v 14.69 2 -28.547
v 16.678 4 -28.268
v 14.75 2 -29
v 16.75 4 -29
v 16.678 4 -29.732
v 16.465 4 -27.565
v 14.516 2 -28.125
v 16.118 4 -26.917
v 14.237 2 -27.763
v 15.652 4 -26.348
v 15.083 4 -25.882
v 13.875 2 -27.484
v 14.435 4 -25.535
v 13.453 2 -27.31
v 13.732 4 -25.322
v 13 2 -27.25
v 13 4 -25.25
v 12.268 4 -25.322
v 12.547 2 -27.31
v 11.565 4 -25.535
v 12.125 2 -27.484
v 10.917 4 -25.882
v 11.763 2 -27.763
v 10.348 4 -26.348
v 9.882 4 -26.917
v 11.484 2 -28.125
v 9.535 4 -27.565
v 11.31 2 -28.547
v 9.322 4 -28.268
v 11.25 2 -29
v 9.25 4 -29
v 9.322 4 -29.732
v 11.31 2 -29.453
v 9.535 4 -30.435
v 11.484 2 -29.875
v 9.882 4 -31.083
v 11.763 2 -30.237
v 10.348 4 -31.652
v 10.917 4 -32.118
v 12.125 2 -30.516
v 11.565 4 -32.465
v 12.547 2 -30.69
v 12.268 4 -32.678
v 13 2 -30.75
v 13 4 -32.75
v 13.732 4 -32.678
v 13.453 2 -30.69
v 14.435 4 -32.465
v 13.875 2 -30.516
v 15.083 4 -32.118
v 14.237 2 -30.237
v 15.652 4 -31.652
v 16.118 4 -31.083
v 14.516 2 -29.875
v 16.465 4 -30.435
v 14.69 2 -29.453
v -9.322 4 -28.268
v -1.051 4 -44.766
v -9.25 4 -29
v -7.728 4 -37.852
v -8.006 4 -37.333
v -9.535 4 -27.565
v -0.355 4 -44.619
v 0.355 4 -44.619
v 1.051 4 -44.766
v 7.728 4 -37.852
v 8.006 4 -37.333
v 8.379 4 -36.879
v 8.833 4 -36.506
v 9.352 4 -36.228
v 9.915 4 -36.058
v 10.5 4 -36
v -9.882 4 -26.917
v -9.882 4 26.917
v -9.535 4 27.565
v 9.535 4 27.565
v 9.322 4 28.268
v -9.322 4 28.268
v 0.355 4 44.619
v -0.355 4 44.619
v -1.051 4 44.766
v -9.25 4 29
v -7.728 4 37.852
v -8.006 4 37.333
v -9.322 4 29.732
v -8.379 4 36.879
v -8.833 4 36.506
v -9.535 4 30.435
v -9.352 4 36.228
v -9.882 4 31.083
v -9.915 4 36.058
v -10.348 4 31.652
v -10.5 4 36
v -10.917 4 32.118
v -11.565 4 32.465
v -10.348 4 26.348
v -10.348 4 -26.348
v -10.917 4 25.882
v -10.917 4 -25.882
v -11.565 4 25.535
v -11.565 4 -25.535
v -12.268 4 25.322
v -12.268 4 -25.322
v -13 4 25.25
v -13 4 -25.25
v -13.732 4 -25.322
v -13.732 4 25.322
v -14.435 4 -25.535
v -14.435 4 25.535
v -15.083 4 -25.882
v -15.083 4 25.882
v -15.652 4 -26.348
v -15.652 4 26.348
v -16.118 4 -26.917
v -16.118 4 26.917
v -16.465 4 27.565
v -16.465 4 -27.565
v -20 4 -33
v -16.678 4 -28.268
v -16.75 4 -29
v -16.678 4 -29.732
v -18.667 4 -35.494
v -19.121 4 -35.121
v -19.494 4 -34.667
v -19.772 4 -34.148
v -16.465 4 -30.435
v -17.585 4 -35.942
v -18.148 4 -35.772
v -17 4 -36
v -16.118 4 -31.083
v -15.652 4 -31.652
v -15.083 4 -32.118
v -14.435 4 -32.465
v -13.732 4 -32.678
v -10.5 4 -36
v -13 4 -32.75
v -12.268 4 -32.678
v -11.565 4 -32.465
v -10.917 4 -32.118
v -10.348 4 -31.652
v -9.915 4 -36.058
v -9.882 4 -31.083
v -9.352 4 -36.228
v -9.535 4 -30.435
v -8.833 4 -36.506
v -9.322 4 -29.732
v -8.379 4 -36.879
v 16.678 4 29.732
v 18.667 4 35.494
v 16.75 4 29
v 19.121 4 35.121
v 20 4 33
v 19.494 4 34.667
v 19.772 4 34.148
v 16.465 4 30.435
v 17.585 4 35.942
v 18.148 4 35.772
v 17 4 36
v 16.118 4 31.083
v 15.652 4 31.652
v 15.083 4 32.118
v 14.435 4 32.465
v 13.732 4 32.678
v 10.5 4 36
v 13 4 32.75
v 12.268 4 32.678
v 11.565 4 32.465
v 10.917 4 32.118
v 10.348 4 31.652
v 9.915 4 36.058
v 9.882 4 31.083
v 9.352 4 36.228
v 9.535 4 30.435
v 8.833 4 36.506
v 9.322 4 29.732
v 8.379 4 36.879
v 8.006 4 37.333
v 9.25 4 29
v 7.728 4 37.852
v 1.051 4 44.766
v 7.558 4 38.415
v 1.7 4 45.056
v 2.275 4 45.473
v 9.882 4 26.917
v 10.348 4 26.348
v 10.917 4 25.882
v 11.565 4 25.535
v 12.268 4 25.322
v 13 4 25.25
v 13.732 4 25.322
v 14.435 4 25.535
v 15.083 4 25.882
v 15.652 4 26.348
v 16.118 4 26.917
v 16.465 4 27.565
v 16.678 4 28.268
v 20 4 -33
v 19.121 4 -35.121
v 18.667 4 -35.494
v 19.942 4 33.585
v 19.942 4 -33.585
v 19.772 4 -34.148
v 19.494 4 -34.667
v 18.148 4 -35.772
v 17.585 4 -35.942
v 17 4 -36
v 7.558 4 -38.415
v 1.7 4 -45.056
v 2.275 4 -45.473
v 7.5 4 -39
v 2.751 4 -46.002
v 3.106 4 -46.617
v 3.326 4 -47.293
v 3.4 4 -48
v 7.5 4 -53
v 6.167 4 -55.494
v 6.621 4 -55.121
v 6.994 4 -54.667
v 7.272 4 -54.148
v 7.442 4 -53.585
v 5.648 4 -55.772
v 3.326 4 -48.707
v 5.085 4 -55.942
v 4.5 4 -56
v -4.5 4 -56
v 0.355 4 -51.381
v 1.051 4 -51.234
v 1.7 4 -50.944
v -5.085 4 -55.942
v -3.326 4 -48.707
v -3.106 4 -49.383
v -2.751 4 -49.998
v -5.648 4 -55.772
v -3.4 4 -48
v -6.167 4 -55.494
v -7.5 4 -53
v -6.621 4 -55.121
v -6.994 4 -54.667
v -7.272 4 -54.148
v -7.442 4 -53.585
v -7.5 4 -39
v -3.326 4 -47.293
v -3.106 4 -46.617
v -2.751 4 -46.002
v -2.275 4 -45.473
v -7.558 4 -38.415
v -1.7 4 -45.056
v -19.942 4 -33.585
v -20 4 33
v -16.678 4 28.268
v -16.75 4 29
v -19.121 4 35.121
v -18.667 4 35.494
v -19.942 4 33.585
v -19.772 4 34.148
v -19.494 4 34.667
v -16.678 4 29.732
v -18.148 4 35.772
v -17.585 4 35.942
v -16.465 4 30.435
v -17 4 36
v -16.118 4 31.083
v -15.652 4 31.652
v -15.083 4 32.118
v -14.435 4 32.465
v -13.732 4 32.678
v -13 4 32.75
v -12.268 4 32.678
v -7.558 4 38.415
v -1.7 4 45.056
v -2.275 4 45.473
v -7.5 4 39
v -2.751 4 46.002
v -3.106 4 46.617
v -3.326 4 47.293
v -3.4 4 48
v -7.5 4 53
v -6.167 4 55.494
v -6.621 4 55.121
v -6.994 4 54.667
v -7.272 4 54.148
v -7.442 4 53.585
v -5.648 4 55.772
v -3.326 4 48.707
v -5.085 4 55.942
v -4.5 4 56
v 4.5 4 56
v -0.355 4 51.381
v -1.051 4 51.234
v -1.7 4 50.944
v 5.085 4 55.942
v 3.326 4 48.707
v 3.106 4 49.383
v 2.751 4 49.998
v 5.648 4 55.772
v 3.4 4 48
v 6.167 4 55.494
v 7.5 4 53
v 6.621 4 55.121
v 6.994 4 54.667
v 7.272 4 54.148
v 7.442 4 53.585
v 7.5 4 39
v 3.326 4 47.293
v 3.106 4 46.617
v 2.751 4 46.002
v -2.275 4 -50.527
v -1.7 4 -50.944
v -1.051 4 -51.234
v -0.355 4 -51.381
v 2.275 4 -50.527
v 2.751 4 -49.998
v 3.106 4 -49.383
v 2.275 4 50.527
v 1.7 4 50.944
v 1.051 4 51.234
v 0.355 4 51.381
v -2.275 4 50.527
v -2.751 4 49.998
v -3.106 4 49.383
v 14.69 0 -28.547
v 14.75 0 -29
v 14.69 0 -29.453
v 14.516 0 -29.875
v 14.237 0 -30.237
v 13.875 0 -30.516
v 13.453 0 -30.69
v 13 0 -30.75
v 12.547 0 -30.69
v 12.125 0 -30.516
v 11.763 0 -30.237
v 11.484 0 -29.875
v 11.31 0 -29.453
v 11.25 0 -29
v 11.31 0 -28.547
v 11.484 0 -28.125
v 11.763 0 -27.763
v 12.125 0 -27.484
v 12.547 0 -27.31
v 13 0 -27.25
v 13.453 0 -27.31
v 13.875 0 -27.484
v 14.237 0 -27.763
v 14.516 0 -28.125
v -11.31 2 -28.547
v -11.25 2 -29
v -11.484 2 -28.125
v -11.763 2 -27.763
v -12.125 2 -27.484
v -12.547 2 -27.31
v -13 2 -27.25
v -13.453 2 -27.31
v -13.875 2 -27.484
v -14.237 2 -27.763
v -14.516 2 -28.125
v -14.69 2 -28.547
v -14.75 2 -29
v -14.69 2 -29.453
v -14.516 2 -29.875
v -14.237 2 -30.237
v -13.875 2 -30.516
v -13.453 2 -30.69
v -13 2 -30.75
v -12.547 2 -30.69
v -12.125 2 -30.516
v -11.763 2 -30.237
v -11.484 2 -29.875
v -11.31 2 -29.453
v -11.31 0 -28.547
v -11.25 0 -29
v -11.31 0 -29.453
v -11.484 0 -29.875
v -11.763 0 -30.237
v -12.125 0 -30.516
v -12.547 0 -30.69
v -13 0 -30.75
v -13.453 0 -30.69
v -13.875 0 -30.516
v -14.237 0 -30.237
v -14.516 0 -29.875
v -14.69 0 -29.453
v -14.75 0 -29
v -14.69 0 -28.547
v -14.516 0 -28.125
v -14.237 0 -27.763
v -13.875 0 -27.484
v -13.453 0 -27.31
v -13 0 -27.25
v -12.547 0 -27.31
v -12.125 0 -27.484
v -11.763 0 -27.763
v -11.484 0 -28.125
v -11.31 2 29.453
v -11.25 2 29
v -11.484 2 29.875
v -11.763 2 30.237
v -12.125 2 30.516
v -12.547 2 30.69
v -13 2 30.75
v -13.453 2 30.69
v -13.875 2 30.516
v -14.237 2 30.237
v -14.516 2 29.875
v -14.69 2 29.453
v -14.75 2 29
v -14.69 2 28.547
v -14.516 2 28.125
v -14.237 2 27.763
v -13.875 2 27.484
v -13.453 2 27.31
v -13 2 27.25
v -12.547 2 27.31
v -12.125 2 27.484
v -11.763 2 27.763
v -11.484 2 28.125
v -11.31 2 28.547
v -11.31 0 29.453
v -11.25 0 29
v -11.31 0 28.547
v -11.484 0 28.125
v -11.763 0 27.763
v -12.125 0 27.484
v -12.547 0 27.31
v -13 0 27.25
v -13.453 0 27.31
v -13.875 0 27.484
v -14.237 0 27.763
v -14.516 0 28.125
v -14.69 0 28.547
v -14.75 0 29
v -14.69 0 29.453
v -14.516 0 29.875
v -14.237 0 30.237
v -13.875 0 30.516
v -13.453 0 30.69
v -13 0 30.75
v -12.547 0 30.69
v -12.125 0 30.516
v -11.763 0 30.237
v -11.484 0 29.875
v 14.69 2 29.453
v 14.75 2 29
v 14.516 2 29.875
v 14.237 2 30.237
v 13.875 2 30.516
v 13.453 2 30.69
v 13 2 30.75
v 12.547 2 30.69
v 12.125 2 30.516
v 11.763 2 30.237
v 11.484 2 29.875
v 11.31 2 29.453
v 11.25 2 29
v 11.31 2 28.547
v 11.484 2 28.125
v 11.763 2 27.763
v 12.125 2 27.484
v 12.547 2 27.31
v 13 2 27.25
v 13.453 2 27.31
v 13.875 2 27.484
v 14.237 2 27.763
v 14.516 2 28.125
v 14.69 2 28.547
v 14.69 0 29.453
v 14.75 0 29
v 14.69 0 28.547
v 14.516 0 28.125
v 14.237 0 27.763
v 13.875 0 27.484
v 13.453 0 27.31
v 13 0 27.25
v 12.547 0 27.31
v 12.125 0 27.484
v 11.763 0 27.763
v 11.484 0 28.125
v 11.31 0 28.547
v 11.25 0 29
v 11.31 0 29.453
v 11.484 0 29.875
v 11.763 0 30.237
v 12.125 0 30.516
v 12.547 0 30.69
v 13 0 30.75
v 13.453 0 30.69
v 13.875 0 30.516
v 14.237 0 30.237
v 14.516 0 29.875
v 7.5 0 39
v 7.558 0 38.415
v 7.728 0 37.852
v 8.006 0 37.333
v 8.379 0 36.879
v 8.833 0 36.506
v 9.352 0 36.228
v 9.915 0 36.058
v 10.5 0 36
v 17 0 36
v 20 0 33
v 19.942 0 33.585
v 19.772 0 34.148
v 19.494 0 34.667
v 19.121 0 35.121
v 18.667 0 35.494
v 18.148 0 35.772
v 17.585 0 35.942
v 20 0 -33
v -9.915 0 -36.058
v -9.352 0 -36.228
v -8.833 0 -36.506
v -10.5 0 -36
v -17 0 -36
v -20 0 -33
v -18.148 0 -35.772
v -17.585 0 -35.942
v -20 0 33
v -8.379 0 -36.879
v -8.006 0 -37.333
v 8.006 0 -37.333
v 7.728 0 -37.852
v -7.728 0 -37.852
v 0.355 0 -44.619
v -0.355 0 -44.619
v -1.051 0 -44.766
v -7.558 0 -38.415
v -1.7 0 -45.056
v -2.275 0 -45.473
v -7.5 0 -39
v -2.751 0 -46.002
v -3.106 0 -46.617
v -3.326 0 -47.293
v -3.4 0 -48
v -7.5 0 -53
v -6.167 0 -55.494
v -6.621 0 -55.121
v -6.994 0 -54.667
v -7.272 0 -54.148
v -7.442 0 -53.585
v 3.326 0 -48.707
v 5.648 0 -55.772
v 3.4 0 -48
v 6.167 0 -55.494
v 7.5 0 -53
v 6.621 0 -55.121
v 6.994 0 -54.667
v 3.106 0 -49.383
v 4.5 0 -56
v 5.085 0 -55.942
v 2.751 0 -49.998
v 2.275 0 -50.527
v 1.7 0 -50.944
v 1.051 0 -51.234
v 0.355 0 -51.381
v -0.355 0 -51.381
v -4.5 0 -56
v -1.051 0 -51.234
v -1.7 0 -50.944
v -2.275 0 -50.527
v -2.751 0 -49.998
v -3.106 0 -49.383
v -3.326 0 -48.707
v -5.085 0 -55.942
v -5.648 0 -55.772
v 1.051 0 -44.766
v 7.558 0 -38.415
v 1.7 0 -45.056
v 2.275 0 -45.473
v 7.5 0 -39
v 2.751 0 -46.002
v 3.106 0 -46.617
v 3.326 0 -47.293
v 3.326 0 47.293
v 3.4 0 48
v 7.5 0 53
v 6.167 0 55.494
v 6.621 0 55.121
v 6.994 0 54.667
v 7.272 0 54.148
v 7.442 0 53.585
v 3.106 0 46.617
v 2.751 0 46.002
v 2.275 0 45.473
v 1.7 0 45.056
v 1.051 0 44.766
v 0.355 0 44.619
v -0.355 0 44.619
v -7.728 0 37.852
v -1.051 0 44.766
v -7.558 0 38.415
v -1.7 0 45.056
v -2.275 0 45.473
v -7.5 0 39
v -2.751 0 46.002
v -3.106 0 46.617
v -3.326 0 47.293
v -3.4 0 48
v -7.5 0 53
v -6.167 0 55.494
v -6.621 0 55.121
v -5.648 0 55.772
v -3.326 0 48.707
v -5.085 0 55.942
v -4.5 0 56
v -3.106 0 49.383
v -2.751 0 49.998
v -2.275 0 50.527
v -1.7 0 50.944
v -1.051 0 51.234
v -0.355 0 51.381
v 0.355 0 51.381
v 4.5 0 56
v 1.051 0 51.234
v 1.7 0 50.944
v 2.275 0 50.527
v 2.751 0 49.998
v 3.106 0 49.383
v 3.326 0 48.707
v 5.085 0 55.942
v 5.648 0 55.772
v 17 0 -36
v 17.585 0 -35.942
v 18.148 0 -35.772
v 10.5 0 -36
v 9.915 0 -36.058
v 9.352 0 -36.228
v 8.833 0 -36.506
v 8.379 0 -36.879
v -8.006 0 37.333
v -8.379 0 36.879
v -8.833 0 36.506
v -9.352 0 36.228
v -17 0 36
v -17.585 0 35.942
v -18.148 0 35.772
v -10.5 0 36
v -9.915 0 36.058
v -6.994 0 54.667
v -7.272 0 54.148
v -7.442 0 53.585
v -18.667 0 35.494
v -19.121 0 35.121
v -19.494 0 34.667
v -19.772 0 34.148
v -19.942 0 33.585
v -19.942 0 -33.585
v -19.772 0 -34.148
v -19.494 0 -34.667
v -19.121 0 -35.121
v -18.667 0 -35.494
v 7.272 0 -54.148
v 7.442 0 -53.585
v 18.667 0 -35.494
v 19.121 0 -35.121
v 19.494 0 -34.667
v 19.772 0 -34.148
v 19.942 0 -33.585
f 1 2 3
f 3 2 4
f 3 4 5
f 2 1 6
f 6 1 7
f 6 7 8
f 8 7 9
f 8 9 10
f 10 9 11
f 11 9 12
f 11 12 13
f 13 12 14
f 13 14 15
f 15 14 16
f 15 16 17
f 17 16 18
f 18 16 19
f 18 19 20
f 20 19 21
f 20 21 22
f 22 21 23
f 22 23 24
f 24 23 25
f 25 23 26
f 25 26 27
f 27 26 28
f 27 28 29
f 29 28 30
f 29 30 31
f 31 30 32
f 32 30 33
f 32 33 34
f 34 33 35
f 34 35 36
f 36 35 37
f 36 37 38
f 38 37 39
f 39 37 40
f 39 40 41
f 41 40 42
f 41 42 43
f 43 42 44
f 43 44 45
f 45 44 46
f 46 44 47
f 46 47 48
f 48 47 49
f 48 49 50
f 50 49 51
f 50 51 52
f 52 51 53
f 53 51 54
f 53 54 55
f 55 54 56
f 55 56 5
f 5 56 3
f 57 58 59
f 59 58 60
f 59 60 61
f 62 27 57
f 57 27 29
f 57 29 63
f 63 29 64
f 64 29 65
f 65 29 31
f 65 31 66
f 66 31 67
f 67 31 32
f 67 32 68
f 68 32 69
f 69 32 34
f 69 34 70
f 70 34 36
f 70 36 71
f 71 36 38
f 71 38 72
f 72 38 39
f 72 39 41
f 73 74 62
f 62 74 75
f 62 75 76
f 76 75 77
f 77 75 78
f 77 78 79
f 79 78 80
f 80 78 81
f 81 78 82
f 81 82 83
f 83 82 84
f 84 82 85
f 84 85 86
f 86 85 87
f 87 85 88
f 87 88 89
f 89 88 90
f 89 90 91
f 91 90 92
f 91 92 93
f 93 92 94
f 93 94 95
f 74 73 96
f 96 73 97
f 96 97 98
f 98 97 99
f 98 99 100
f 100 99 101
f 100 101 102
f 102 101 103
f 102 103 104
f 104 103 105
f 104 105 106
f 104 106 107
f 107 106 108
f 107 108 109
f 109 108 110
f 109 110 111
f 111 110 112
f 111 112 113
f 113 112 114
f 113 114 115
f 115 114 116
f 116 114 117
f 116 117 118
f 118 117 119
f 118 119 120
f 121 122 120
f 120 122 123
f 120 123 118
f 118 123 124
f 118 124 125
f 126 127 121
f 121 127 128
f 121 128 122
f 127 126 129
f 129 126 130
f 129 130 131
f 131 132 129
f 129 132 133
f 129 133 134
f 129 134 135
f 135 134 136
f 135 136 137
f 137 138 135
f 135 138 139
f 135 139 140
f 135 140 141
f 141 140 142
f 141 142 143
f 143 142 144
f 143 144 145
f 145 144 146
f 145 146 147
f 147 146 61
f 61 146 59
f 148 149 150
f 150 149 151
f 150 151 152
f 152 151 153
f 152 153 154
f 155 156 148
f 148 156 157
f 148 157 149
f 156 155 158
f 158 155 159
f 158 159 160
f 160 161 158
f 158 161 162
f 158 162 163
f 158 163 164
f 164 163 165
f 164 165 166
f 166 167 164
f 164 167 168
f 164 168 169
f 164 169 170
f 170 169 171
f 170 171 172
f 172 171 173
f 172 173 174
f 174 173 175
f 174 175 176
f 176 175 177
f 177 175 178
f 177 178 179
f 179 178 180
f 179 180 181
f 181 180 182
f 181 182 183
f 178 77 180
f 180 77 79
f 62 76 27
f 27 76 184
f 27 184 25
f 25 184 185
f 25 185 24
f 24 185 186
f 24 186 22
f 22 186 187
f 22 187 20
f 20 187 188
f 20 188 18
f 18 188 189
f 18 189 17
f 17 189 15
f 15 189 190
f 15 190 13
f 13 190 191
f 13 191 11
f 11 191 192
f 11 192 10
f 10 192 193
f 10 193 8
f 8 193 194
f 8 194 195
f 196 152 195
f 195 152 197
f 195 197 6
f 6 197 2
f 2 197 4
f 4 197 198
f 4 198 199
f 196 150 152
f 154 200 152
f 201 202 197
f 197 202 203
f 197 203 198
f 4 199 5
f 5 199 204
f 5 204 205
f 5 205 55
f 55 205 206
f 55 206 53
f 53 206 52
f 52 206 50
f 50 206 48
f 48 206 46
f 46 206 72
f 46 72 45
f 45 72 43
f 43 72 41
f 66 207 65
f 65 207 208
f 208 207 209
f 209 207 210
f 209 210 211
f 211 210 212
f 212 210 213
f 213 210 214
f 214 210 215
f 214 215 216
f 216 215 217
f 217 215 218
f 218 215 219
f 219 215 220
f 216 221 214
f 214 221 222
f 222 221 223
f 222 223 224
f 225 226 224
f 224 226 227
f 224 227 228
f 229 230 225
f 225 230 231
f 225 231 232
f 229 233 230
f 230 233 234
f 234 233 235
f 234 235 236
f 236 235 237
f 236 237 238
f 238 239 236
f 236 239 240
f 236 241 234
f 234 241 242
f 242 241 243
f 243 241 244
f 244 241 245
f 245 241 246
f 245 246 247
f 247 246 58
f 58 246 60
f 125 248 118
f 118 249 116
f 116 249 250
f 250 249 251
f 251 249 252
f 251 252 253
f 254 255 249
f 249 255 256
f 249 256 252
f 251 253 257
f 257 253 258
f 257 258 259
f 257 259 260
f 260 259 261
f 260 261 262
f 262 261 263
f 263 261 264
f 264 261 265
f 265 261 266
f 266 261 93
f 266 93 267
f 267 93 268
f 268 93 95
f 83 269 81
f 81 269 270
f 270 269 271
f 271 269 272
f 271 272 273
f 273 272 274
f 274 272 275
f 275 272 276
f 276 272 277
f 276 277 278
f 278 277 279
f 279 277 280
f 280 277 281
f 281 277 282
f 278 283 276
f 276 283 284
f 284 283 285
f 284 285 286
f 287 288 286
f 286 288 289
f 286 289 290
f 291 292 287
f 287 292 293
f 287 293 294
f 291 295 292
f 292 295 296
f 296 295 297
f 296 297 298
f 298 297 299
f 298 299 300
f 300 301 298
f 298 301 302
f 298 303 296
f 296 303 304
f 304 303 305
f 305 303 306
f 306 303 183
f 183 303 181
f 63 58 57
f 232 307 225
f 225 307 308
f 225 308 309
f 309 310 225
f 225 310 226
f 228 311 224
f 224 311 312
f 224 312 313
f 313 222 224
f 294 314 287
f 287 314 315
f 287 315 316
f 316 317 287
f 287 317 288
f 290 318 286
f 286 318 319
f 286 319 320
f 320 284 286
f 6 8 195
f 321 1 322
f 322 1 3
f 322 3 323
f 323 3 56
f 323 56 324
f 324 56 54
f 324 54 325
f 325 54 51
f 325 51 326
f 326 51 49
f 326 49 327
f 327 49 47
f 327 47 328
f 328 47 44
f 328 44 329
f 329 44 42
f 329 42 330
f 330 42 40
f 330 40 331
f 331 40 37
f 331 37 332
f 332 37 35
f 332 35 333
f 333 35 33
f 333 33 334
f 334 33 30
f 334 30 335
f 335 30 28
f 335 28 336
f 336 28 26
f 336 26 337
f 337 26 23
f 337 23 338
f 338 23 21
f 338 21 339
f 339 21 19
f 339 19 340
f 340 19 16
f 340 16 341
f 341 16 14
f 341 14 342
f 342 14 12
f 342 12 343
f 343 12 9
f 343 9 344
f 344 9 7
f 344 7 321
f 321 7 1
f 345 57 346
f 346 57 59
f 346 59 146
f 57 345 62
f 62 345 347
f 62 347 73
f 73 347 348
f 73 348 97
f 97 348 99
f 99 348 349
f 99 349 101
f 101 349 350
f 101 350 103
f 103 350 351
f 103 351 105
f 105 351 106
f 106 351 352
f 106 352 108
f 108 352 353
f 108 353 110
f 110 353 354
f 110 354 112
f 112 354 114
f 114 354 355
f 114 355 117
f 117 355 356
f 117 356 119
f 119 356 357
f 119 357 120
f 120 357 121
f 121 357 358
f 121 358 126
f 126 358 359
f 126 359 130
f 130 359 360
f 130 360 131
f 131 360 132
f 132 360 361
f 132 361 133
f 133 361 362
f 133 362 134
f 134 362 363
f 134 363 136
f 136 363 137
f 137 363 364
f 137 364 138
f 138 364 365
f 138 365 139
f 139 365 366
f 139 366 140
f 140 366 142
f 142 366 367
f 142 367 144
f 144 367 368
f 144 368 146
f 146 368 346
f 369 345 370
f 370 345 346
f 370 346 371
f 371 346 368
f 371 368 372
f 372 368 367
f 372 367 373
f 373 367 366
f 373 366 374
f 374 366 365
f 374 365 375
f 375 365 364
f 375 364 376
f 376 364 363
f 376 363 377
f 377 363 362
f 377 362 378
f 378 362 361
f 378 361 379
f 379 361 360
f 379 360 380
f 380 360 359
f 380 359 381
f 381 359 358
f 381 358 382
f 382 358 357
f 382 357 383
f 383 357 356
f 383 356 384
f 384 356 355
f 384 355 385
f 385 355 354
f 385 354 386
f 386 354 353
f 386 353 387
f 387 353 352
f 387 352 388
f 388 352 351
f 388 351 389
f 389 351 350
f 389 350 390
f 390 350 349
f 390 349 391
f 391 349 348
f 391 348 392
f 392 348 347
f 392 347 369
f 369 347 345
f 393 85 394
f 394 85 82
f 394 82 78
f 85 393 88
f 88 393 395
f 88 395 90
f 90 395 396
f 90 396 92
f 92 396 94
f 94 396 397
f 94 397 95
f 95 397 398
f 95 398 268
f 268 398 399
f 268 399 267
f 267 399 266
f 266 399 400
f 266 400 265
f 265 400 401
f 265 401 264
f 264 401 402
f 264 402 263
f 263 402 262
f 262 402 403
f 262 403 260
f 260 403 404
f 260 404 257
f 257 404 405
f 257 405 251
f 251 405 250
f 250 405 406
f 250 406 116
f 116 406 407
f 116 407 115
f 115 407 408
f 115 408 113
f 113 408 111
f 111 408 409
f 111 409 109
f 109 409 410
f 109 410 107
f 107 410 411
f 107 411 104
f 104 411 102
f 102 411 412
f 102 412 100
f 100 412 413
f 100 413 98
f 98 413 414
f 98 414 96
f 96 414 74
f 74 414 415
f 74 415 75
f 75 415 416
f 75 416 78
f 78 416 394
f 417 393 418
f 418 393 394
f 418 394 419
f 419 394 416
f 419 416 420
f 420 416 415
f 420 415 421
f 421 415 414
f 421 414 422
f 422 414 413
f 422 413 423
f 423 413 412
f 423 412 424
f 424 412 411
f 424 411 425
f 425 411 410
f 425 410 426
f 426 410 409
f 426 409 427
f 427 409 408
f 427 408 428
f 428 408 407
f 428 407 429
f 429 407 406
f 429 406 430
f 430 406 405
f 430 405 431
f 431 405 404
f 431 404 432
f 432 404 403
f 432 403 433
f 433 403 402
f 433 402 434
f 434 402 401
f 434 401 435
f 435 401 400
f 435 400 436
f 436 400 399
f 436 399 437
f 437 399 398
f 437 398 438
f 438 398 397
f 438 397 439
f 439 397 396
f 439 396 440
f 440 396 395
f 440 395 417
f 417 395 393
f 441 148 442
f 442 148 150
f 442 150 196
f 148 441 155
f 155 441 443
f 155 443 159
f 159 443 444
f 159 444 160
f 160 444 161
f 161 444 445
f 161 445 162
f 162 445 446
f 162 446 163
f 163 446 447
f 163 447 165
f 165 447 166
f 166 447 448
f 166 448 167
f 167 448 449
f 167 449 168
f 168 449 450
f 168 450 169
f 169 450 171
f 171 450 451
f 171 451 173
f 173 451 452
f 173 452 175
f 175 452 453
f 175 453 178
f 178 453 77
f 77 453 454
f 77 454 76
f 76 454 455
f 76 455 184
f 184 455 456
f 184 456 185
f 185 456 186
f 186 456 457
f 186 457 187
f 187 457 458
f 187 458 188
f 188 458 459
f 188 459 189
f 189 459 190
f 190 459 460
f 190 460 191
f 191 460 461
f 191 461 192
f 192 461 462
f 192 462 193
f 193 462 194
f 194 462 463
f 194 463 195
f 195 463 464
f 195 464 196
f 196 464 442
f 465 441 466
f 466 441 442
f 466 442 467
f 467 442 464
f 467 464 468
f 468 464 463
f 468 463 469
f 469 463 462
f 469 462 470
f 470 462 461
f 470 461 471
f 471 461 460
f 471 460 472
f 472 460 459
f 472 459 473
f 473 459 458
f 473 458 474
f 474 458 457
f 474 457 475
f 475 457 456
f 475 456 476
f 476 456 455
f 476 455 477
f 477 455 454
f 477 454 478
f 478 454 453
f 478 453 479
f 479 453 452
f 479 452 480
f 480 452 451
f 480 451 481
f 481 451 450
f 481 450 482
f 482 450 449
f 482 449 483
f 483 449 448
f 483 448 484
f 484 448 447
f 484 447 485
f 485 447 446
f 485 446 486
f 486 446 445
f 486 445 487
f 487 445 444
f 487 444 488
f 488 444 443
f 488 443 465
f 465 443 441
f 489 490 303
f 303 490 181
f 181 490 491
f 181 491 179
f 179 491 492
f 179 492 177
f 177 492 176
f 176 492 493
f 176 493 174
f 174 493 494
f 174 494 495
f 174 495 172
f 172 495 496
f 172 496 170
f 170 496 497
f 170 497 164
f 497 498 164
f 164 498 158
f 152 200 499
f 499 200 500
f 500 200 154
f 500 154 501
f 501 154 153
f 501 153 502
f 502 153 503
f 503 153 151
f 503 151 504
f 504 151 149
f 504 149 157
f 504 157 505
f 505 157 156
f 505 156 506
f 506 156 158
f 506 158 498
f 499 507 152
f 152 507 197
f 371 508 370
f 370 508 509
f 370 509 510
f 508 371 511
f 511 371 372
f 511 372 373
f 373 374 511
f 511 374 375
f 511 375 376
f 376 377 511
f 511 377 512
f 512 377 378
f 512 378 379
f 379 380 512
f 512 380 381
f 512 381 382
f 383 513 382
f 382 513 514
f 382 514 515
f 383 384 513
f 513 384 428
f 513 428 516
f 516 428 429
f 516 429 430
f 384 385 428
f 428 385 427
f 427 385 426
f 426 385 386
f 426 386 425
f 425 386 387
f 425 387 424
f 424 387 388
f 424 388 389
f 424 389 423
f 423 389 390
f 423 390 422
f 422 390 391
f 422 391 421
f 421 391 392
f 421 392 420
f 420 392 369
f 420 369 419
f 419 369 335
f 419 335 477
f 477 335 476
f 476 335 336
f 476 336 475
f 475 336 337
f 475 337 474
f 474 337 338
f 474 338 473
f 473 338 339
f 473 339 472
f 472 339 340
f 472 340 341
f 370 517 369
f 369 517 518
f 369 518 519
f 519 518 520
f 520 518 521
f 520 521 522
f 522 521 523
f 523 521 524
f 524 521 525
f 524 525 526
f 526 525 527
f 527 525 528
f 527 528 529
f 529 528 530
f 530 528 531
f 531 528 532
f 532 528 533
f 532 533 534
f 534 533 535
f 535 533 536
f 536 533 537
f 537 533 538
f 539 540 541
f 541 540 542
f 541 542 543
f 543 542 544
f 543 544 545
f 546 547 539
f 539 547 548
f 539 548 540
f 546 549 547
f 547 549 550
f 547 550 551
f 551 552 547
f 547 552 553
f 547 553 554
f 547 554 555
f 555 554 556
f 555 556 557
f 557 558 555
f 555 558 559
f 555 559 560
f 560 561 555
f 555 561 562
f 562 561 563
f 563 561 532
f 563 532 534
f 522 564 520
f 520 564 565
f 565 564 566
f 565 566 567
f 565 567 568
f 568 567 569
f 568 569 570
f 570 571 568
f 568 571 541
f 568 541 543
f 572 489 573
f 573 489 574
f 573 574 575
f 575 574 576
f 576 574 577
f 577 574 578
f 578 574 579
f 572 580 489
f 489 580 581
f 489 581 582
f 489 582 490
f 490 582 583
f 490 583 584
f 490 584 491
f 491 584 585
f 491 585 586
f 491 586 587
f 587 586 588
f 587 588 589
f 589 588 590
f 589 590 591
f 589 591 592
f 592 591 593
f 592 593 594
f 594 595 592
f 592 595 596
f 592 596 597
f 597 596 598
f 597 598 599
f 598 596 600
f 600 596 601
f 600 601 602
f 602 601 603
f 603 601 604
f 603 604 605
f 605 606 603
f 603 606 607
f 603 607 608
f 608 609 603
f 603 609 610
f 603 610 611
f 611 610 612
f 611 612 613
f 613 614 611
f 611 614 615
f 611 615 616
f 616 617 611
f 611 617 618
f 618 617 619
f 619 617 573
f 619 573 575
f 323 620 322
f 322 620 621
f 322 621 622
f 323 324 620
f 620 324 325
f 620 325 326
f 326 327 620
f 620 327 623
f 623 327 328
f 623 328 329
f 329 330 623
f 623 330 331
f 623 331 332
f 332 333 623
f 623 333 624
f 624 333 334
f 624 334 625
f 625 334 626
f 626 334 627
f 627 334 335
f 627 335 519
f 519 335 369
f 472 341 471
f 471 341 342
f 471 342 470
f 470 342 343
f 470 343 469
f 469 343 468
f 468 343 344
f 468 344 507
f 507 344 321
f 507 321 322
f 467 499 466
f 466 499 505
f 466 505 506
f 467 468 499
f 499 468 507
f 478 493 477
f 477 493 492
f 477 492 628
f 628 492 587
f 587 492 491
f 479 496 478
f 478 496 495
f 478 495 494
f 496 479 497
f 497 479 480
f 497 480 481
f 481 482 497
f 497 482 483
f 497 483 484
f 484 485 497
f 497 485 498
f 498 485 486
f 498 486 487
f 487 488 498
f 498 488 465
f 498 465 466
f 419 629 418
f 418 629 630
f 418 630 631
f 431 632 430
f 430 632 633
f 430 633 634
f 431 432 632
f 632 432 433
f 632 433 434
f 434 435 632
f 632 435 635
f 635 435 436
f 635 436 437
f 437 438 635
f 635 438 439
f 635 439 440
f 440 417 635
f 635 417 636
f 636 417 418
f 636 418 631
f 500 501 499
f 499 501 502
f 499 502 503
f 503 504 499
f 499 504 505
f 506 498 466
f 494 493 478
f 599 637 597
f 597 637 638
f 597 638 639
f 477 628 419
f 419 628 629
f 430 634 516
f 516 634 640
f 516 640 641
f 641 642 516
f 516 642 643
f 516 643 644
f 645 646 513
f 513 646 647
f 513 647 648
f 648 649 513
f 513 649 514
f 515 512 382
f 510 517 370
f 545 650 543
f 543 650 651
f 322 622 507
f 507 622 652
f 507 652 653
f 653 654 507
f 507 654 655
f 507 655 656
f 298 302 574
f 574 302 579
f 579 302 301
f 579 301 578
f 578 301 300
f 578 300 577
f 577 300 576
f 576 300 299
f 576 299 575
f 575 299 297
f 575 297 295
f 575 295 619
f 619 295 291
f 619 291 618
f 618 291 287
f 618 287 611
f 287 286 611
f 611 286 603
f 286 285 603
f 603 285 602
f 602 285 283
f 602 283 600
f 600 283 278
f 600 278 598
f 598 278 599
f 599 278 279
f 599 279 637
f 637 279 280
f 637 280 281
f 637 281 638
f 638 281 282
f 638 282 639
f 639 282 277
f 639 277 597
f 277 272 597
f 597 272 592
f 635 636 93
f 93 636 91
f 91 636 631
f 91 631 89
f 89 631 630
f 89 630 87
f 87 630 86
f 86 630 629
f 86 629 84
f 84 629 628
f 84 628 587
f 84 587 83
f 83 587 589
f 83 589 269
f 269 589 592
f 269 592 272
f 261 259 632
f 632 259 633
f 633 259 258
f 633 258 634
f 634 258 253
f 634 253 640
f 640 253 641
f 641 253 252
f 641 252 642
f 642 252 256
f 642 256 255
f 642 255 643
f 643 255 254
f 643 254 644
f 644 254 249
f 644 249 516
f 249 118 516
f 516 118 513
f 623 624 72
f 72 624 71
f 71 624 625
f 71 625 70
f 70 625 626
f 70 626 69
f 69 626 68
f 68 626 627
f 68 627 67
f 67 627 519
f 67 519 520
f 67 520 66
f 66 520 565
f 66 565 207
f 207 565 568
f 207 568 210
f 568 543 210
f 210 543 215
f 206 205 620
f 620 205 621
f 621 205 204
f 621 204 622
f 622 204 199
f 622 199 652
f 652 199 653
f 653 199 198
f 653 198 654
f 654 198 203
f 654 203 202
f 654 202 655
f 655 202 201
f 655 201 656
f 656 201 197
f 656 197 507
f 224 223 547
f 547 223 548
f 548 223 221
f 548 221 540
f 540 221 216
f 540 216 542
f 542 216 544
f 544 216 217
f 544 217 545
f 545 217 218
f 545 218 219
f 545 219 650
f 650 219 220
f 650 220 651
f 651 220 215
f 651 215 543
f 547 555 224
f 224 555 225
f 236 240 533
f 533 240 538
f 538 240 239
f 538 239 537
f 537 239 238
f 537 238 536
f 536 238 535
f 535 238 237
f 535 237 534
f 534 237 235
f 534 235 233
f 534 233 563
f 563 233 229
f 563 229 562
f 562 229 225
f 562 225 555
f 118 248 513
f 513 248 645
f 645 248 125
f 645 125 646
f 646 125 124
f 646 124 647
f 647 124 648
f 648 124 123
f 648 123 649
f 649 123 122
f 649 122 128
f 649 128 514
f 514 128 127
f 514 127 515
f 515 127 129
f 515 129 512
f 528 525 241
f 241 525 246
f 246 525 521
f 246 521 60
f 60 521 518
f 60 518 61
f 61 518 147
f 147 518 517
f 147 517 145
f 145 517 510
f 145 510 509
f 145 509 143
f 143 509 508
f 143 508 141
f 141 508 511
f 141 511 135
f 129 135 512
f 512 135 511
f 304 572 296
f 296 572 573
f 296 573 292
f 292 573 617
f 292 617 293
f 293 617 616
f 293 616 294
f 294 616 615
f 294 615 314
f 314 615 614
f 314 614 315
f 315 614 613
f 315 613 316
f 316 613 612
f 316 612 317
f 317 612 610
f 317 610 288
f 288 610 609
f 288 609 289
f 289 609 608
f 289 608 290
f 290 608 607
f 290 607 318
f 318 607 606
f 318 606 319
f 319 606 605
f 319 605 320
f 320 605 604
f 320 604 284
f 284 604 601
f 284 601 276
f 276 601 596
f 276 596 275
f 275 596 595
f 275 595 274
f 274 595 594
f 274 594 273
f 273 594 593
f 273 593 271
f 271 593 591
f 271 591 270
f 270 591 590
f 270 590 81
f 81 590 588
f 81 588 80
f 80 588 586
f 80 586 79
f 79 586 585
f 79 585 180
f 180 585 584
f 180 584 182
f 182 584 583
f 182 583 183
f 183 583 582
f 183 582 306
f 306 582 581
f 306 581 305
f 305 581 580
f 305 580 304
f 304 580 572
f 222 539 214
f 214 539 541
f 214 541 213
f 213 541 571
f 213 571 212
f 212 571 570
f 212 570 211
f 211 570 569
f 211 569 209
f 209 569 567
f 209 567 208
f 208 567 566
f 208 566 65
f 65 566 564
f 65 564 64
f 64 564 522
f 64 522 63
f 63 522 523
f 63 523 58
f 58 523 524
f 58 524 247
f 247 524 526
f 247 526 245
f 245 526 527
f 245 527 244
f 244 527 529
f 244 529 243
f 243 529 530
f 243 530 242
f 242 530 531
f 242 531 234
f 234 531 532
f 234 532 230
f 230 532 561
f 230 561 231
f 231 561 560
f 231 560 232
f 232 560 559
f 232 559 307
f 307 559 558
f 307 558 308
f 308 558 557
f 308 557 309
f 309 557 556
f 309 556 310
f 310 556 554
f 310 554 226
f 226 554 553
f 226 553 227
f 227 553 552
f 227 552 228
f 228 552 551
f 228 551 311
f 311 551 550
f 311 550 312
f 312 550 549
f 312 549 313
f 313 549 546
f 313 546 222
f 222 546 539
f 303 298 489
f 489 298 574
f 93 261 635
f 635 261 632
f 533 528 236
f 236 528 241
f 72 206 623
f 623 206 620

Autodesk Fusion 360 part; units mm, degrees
sketch "Sketch1" plane through (0, 0, 0) normal (0, 1, 0) x (1, 0, 0)
  line L0 (13, 29) -> (-13, 29) construction
  line L1 (-13, 29) -> (-13, -29) construction
  line L2 (-13, -29) -> (13, -29) construction
  line L3 (13, -29) -> (13, 29) construction
  line L4 (13, 29) -> (-13, -29) construction
  line L5 (-13, 29) -> (13, -29) construction
  line L6 (0, 0) -> (0, 16.0365) construction
  line L7 (0, 0) -> (-11.1519, 0) construction
  line L8 (20, 36) -> (-20, 36)
  line L9 (-20, 36) -> (-20, -36)
  line L10 (-20, -36) -> (20, -36)
  line L11 (20, -36) -> (20, 36)
  line L12 (20, 36) -> (-20, -36) construction
  line L13 (-20, 36) -> (20, -36) construction
  circle A0 centre (13, 29) radius 1.75
  circle A1 centre (-13, 29) radius 1.75
  circle A2 centre (13, -29) radius 1.75
  circle A3 centre (-13, -29) radius 1.75
  line L14 (7.5, 36) -> (-7.5, 36)
  line L15 (-7.5, 36) -> (-7.5, 56)
  line L16 (-7.5, 56) -> (7.5, 56)
  line L17 (7.5, 56) -> (7.5, 36)
  line L18 (7.5, 36) -> (-7.5, 56) construction
  line L19 (-7.5, 36) -> (7.5, 56) construction
  circle A4 centre (0, 48) radius 3.4
  line L20 (7.5, -56) -> (7.5, -36)
  line L21 (-7.5, -56) -> (7.5, -56)
  line L22 (-7.5, -36) -> (-7.5, -56)
  circle A5 centre (0, -48) radius 3.4
  line L23 (7.5, -36) -> (-7.5, -36)
  point P0 (0, 46)
  dimension "d1" = 3.5
  dimension "d2" = 58
  dimension "d3" = 26
  dimension "d4" = 7
  dimension "d5" = 7
  dimension "d6" = 15
  dimension "d7" = 20
  dimension "d8" = 6.8
  dimension "d9" = 12
extrude "Extrude1" add sketch "Sketch1" along normal blind 4
fillet "Fillet1" radius 3 12 edges at (7.5, 2, 36) (20, 2, 36) (7.5, 2, 56) (-7.5, 2, 56) (-20, 2, 36) (-7.5, 2, 36) (20, 2, -36) (7.5, 2, -36) (7.5, 2, -56) (-7.5, 2, -56) (-20, 2, -36) (-7.5, 2, -36)
chamfer "Chamfer1" distance 2 angle 45 4 edges at (-14.6316, 4, -29.6328) (11.3684, 4, -29.6328) (11.3684, 4, 28.3672) (-14.6316, 4, 28.3672)
